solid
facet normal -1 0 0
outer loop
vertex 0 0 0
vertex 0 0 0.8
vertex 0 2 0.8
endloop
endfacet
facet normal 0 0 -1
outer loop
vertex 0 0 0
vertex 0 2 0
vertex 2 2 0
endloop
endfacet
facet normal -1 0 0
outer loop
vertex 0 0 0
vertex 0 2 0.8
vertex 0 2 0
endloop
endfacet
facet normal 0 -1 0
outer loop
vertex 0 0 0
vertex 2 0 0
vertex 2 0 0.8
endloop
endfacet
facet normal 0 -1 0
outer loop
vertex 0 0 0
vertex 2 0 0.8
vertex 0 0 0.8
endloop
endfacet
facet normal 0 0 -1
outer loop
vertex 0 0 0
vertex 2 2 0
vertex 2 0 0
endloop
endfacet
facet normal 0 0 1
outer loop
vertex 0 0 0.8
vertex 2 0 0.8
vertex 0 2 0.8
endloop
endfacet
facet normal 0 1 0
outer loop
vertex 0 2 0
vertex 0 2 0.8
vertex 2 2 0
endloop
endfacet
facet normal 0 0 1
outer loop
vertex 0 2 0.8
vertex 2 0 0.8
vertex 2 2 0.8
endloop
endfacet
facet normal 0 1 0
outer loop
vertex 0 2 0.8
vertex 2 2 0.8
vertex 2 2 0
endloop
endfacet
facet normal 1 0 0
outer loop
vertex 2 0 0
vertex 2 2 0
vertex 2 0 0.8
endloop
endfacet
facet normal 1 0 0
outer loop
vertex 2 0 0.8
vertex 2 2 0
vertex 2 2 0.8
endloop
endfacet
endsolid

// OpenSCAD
/* Warning, this is a very basic generator with a lot of approximation 
input data : [TDFN, 8HW, 2x2x0.8mm, 8, , B, C04-00662B]
generated by com.zoubworld.electronics.cad.model3d.Basic
Date : Sun Feb 15 10:50:49 CET 2026
*/

//body
color("black")
translate([0,0,0])
cube([2.0,2.0,0.8], center=false);
